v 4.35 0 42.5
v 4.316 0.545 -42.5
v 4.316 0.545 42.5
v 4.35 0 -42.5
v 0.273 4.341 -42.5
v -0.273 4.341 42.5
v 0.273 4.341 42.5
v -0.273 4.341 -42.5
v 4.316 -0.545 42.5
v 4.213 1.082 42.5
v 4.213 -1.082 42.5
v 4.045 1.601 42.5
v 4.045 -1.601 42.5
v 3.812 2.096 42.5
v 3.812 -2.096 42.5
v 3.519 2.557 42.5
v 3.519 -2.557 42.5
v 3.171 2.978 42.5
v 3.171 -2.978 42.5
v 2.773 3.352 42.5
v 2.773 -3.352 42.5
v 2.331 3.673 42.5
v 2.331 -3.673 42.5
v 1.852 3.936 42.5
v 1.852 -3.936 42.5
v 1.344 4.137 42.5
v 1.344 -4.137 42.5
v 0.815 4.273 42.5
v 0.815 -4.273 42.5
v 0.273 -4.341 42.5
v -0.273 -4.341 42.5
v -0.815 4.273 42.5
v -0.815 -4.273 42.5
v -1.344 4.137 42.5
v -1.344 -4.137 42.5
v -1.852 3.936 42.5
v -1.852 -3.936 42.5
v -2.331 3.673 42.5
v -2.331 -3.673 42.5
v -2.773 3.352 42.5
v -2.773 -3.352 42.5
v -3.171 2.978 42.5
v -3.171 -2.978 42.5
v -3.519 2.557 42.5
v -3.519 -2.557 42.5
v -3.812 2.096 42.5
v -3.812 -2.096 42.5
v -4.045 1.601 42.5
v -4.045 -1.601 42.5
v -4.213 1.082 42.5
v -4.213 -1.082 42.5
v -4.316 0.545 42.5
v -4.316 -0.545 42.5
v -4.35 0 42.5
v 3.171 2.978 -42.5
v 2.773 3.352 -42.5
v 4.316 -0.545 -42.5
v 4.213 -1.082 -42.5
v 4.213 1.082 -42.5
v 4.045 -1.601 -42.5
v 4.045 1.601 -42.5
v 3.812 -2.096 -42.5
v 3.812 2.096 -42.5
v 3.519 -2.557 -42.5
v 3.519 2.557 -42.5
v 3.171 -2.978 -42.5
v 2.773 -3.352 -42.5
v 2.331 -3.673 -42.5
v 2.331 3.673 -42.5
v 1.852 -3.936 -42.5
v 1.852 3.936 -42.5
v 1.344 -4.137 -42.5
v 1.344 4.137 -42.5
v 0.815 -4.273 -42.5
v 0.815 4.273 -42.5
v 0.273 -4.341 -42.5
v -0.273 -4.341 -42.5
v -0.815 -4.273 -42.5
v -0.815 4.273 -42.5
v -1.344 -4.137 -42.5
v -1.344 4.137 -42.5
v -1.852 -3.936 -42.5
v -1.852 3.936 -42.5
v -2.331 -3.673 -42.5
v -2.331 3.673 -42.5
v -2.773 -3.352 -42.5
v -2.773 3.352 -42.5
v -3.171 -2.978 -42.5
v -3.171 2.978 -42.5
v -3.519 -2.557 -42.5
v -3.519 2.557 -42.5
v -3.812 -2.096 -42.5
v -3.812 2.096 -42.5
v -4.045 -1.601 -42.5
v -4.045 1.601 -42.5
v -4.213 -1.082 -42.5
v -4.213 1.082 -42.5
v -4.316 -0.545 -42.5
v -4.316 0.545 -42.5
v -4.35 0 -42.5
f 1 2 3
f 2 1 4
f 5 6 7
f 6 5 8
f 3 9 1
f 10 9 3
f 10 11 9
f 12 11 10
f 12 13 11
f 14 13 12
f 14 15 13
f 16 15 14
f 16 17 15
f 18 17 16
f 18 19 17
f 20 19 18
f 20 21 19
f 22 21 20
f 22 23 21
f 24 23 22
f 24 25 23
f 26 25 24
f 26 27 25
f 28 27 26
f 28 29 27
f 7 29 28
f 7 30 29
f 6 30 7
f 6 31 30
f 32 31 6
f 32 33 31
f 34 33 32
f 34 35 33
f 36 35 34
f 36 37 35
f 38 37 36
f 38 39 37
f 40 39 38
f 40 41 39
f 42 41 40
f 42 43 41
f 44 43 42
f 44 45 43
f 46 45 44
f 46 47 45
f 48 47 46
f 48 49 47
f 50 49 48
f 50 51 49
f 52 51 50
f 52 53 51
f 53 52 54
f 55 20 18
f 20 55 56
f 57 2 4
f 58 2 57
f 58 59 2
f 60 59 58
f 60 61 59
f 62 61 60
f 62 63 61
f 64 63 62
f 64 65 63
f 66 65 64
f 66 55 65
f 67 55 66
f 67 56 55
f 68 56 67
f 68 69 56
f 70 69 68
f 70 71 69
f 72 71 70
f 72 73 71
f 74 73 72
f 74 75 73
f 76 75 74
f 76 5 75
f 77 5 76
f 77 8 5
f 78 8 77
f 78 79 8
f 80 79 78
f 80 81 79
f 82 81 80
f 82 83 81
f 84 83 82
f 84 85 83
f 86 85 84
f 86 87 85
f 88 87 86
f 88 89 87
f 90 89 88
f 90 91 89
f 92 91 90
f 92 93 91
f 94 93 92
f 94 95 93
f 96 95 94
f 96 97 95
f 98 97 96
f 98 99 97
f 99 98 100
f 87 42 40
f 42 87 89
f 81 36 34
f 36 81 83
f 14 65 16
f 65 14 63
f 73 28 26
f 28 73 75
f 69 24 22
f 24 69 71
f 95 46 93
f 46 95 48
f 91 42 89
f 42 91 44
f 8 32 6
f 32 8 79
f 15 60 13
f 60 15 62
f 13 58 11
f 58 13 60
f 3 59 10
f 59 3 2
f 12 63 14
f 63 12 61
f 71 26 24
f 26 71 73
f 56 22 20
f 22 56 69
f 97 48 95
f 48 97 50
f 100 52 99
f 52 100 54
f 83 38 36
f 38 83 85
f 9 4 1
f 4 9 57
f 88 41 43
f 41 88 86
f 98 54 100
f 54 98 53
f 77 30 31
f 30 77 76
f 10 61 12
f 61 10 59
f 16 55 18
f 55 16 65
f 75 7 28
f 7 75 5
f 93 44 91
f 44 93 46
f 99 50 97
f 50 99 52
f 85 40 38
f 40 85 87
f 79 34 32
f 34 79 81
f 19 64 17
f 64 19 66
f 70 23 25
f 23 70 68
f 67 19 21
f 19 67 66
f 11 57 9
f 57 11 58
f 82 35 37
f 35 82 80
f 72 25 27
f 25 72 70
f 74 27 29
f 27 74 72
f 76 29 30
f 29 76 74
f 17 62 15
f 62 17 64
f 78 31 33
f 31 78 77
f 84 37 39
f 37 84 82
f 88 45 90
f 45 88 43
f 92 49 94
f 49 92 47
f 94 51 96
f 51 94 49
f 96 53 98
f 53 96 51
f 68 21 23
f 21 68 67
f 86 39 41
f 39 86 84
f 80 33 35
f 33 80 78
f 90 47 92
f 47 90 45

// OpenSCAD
$fn = 50;


difference() {
	union() {
		translate(v = [0, 0, -42.5000000000]) {
			cylinder(h = 85, r = 4.3500000000);
		}
	}
	union() {
		translate(v = [0, 0, -100.0000000000]) {
			cylinder(h = 200, r = 0);
		}
	}
}
